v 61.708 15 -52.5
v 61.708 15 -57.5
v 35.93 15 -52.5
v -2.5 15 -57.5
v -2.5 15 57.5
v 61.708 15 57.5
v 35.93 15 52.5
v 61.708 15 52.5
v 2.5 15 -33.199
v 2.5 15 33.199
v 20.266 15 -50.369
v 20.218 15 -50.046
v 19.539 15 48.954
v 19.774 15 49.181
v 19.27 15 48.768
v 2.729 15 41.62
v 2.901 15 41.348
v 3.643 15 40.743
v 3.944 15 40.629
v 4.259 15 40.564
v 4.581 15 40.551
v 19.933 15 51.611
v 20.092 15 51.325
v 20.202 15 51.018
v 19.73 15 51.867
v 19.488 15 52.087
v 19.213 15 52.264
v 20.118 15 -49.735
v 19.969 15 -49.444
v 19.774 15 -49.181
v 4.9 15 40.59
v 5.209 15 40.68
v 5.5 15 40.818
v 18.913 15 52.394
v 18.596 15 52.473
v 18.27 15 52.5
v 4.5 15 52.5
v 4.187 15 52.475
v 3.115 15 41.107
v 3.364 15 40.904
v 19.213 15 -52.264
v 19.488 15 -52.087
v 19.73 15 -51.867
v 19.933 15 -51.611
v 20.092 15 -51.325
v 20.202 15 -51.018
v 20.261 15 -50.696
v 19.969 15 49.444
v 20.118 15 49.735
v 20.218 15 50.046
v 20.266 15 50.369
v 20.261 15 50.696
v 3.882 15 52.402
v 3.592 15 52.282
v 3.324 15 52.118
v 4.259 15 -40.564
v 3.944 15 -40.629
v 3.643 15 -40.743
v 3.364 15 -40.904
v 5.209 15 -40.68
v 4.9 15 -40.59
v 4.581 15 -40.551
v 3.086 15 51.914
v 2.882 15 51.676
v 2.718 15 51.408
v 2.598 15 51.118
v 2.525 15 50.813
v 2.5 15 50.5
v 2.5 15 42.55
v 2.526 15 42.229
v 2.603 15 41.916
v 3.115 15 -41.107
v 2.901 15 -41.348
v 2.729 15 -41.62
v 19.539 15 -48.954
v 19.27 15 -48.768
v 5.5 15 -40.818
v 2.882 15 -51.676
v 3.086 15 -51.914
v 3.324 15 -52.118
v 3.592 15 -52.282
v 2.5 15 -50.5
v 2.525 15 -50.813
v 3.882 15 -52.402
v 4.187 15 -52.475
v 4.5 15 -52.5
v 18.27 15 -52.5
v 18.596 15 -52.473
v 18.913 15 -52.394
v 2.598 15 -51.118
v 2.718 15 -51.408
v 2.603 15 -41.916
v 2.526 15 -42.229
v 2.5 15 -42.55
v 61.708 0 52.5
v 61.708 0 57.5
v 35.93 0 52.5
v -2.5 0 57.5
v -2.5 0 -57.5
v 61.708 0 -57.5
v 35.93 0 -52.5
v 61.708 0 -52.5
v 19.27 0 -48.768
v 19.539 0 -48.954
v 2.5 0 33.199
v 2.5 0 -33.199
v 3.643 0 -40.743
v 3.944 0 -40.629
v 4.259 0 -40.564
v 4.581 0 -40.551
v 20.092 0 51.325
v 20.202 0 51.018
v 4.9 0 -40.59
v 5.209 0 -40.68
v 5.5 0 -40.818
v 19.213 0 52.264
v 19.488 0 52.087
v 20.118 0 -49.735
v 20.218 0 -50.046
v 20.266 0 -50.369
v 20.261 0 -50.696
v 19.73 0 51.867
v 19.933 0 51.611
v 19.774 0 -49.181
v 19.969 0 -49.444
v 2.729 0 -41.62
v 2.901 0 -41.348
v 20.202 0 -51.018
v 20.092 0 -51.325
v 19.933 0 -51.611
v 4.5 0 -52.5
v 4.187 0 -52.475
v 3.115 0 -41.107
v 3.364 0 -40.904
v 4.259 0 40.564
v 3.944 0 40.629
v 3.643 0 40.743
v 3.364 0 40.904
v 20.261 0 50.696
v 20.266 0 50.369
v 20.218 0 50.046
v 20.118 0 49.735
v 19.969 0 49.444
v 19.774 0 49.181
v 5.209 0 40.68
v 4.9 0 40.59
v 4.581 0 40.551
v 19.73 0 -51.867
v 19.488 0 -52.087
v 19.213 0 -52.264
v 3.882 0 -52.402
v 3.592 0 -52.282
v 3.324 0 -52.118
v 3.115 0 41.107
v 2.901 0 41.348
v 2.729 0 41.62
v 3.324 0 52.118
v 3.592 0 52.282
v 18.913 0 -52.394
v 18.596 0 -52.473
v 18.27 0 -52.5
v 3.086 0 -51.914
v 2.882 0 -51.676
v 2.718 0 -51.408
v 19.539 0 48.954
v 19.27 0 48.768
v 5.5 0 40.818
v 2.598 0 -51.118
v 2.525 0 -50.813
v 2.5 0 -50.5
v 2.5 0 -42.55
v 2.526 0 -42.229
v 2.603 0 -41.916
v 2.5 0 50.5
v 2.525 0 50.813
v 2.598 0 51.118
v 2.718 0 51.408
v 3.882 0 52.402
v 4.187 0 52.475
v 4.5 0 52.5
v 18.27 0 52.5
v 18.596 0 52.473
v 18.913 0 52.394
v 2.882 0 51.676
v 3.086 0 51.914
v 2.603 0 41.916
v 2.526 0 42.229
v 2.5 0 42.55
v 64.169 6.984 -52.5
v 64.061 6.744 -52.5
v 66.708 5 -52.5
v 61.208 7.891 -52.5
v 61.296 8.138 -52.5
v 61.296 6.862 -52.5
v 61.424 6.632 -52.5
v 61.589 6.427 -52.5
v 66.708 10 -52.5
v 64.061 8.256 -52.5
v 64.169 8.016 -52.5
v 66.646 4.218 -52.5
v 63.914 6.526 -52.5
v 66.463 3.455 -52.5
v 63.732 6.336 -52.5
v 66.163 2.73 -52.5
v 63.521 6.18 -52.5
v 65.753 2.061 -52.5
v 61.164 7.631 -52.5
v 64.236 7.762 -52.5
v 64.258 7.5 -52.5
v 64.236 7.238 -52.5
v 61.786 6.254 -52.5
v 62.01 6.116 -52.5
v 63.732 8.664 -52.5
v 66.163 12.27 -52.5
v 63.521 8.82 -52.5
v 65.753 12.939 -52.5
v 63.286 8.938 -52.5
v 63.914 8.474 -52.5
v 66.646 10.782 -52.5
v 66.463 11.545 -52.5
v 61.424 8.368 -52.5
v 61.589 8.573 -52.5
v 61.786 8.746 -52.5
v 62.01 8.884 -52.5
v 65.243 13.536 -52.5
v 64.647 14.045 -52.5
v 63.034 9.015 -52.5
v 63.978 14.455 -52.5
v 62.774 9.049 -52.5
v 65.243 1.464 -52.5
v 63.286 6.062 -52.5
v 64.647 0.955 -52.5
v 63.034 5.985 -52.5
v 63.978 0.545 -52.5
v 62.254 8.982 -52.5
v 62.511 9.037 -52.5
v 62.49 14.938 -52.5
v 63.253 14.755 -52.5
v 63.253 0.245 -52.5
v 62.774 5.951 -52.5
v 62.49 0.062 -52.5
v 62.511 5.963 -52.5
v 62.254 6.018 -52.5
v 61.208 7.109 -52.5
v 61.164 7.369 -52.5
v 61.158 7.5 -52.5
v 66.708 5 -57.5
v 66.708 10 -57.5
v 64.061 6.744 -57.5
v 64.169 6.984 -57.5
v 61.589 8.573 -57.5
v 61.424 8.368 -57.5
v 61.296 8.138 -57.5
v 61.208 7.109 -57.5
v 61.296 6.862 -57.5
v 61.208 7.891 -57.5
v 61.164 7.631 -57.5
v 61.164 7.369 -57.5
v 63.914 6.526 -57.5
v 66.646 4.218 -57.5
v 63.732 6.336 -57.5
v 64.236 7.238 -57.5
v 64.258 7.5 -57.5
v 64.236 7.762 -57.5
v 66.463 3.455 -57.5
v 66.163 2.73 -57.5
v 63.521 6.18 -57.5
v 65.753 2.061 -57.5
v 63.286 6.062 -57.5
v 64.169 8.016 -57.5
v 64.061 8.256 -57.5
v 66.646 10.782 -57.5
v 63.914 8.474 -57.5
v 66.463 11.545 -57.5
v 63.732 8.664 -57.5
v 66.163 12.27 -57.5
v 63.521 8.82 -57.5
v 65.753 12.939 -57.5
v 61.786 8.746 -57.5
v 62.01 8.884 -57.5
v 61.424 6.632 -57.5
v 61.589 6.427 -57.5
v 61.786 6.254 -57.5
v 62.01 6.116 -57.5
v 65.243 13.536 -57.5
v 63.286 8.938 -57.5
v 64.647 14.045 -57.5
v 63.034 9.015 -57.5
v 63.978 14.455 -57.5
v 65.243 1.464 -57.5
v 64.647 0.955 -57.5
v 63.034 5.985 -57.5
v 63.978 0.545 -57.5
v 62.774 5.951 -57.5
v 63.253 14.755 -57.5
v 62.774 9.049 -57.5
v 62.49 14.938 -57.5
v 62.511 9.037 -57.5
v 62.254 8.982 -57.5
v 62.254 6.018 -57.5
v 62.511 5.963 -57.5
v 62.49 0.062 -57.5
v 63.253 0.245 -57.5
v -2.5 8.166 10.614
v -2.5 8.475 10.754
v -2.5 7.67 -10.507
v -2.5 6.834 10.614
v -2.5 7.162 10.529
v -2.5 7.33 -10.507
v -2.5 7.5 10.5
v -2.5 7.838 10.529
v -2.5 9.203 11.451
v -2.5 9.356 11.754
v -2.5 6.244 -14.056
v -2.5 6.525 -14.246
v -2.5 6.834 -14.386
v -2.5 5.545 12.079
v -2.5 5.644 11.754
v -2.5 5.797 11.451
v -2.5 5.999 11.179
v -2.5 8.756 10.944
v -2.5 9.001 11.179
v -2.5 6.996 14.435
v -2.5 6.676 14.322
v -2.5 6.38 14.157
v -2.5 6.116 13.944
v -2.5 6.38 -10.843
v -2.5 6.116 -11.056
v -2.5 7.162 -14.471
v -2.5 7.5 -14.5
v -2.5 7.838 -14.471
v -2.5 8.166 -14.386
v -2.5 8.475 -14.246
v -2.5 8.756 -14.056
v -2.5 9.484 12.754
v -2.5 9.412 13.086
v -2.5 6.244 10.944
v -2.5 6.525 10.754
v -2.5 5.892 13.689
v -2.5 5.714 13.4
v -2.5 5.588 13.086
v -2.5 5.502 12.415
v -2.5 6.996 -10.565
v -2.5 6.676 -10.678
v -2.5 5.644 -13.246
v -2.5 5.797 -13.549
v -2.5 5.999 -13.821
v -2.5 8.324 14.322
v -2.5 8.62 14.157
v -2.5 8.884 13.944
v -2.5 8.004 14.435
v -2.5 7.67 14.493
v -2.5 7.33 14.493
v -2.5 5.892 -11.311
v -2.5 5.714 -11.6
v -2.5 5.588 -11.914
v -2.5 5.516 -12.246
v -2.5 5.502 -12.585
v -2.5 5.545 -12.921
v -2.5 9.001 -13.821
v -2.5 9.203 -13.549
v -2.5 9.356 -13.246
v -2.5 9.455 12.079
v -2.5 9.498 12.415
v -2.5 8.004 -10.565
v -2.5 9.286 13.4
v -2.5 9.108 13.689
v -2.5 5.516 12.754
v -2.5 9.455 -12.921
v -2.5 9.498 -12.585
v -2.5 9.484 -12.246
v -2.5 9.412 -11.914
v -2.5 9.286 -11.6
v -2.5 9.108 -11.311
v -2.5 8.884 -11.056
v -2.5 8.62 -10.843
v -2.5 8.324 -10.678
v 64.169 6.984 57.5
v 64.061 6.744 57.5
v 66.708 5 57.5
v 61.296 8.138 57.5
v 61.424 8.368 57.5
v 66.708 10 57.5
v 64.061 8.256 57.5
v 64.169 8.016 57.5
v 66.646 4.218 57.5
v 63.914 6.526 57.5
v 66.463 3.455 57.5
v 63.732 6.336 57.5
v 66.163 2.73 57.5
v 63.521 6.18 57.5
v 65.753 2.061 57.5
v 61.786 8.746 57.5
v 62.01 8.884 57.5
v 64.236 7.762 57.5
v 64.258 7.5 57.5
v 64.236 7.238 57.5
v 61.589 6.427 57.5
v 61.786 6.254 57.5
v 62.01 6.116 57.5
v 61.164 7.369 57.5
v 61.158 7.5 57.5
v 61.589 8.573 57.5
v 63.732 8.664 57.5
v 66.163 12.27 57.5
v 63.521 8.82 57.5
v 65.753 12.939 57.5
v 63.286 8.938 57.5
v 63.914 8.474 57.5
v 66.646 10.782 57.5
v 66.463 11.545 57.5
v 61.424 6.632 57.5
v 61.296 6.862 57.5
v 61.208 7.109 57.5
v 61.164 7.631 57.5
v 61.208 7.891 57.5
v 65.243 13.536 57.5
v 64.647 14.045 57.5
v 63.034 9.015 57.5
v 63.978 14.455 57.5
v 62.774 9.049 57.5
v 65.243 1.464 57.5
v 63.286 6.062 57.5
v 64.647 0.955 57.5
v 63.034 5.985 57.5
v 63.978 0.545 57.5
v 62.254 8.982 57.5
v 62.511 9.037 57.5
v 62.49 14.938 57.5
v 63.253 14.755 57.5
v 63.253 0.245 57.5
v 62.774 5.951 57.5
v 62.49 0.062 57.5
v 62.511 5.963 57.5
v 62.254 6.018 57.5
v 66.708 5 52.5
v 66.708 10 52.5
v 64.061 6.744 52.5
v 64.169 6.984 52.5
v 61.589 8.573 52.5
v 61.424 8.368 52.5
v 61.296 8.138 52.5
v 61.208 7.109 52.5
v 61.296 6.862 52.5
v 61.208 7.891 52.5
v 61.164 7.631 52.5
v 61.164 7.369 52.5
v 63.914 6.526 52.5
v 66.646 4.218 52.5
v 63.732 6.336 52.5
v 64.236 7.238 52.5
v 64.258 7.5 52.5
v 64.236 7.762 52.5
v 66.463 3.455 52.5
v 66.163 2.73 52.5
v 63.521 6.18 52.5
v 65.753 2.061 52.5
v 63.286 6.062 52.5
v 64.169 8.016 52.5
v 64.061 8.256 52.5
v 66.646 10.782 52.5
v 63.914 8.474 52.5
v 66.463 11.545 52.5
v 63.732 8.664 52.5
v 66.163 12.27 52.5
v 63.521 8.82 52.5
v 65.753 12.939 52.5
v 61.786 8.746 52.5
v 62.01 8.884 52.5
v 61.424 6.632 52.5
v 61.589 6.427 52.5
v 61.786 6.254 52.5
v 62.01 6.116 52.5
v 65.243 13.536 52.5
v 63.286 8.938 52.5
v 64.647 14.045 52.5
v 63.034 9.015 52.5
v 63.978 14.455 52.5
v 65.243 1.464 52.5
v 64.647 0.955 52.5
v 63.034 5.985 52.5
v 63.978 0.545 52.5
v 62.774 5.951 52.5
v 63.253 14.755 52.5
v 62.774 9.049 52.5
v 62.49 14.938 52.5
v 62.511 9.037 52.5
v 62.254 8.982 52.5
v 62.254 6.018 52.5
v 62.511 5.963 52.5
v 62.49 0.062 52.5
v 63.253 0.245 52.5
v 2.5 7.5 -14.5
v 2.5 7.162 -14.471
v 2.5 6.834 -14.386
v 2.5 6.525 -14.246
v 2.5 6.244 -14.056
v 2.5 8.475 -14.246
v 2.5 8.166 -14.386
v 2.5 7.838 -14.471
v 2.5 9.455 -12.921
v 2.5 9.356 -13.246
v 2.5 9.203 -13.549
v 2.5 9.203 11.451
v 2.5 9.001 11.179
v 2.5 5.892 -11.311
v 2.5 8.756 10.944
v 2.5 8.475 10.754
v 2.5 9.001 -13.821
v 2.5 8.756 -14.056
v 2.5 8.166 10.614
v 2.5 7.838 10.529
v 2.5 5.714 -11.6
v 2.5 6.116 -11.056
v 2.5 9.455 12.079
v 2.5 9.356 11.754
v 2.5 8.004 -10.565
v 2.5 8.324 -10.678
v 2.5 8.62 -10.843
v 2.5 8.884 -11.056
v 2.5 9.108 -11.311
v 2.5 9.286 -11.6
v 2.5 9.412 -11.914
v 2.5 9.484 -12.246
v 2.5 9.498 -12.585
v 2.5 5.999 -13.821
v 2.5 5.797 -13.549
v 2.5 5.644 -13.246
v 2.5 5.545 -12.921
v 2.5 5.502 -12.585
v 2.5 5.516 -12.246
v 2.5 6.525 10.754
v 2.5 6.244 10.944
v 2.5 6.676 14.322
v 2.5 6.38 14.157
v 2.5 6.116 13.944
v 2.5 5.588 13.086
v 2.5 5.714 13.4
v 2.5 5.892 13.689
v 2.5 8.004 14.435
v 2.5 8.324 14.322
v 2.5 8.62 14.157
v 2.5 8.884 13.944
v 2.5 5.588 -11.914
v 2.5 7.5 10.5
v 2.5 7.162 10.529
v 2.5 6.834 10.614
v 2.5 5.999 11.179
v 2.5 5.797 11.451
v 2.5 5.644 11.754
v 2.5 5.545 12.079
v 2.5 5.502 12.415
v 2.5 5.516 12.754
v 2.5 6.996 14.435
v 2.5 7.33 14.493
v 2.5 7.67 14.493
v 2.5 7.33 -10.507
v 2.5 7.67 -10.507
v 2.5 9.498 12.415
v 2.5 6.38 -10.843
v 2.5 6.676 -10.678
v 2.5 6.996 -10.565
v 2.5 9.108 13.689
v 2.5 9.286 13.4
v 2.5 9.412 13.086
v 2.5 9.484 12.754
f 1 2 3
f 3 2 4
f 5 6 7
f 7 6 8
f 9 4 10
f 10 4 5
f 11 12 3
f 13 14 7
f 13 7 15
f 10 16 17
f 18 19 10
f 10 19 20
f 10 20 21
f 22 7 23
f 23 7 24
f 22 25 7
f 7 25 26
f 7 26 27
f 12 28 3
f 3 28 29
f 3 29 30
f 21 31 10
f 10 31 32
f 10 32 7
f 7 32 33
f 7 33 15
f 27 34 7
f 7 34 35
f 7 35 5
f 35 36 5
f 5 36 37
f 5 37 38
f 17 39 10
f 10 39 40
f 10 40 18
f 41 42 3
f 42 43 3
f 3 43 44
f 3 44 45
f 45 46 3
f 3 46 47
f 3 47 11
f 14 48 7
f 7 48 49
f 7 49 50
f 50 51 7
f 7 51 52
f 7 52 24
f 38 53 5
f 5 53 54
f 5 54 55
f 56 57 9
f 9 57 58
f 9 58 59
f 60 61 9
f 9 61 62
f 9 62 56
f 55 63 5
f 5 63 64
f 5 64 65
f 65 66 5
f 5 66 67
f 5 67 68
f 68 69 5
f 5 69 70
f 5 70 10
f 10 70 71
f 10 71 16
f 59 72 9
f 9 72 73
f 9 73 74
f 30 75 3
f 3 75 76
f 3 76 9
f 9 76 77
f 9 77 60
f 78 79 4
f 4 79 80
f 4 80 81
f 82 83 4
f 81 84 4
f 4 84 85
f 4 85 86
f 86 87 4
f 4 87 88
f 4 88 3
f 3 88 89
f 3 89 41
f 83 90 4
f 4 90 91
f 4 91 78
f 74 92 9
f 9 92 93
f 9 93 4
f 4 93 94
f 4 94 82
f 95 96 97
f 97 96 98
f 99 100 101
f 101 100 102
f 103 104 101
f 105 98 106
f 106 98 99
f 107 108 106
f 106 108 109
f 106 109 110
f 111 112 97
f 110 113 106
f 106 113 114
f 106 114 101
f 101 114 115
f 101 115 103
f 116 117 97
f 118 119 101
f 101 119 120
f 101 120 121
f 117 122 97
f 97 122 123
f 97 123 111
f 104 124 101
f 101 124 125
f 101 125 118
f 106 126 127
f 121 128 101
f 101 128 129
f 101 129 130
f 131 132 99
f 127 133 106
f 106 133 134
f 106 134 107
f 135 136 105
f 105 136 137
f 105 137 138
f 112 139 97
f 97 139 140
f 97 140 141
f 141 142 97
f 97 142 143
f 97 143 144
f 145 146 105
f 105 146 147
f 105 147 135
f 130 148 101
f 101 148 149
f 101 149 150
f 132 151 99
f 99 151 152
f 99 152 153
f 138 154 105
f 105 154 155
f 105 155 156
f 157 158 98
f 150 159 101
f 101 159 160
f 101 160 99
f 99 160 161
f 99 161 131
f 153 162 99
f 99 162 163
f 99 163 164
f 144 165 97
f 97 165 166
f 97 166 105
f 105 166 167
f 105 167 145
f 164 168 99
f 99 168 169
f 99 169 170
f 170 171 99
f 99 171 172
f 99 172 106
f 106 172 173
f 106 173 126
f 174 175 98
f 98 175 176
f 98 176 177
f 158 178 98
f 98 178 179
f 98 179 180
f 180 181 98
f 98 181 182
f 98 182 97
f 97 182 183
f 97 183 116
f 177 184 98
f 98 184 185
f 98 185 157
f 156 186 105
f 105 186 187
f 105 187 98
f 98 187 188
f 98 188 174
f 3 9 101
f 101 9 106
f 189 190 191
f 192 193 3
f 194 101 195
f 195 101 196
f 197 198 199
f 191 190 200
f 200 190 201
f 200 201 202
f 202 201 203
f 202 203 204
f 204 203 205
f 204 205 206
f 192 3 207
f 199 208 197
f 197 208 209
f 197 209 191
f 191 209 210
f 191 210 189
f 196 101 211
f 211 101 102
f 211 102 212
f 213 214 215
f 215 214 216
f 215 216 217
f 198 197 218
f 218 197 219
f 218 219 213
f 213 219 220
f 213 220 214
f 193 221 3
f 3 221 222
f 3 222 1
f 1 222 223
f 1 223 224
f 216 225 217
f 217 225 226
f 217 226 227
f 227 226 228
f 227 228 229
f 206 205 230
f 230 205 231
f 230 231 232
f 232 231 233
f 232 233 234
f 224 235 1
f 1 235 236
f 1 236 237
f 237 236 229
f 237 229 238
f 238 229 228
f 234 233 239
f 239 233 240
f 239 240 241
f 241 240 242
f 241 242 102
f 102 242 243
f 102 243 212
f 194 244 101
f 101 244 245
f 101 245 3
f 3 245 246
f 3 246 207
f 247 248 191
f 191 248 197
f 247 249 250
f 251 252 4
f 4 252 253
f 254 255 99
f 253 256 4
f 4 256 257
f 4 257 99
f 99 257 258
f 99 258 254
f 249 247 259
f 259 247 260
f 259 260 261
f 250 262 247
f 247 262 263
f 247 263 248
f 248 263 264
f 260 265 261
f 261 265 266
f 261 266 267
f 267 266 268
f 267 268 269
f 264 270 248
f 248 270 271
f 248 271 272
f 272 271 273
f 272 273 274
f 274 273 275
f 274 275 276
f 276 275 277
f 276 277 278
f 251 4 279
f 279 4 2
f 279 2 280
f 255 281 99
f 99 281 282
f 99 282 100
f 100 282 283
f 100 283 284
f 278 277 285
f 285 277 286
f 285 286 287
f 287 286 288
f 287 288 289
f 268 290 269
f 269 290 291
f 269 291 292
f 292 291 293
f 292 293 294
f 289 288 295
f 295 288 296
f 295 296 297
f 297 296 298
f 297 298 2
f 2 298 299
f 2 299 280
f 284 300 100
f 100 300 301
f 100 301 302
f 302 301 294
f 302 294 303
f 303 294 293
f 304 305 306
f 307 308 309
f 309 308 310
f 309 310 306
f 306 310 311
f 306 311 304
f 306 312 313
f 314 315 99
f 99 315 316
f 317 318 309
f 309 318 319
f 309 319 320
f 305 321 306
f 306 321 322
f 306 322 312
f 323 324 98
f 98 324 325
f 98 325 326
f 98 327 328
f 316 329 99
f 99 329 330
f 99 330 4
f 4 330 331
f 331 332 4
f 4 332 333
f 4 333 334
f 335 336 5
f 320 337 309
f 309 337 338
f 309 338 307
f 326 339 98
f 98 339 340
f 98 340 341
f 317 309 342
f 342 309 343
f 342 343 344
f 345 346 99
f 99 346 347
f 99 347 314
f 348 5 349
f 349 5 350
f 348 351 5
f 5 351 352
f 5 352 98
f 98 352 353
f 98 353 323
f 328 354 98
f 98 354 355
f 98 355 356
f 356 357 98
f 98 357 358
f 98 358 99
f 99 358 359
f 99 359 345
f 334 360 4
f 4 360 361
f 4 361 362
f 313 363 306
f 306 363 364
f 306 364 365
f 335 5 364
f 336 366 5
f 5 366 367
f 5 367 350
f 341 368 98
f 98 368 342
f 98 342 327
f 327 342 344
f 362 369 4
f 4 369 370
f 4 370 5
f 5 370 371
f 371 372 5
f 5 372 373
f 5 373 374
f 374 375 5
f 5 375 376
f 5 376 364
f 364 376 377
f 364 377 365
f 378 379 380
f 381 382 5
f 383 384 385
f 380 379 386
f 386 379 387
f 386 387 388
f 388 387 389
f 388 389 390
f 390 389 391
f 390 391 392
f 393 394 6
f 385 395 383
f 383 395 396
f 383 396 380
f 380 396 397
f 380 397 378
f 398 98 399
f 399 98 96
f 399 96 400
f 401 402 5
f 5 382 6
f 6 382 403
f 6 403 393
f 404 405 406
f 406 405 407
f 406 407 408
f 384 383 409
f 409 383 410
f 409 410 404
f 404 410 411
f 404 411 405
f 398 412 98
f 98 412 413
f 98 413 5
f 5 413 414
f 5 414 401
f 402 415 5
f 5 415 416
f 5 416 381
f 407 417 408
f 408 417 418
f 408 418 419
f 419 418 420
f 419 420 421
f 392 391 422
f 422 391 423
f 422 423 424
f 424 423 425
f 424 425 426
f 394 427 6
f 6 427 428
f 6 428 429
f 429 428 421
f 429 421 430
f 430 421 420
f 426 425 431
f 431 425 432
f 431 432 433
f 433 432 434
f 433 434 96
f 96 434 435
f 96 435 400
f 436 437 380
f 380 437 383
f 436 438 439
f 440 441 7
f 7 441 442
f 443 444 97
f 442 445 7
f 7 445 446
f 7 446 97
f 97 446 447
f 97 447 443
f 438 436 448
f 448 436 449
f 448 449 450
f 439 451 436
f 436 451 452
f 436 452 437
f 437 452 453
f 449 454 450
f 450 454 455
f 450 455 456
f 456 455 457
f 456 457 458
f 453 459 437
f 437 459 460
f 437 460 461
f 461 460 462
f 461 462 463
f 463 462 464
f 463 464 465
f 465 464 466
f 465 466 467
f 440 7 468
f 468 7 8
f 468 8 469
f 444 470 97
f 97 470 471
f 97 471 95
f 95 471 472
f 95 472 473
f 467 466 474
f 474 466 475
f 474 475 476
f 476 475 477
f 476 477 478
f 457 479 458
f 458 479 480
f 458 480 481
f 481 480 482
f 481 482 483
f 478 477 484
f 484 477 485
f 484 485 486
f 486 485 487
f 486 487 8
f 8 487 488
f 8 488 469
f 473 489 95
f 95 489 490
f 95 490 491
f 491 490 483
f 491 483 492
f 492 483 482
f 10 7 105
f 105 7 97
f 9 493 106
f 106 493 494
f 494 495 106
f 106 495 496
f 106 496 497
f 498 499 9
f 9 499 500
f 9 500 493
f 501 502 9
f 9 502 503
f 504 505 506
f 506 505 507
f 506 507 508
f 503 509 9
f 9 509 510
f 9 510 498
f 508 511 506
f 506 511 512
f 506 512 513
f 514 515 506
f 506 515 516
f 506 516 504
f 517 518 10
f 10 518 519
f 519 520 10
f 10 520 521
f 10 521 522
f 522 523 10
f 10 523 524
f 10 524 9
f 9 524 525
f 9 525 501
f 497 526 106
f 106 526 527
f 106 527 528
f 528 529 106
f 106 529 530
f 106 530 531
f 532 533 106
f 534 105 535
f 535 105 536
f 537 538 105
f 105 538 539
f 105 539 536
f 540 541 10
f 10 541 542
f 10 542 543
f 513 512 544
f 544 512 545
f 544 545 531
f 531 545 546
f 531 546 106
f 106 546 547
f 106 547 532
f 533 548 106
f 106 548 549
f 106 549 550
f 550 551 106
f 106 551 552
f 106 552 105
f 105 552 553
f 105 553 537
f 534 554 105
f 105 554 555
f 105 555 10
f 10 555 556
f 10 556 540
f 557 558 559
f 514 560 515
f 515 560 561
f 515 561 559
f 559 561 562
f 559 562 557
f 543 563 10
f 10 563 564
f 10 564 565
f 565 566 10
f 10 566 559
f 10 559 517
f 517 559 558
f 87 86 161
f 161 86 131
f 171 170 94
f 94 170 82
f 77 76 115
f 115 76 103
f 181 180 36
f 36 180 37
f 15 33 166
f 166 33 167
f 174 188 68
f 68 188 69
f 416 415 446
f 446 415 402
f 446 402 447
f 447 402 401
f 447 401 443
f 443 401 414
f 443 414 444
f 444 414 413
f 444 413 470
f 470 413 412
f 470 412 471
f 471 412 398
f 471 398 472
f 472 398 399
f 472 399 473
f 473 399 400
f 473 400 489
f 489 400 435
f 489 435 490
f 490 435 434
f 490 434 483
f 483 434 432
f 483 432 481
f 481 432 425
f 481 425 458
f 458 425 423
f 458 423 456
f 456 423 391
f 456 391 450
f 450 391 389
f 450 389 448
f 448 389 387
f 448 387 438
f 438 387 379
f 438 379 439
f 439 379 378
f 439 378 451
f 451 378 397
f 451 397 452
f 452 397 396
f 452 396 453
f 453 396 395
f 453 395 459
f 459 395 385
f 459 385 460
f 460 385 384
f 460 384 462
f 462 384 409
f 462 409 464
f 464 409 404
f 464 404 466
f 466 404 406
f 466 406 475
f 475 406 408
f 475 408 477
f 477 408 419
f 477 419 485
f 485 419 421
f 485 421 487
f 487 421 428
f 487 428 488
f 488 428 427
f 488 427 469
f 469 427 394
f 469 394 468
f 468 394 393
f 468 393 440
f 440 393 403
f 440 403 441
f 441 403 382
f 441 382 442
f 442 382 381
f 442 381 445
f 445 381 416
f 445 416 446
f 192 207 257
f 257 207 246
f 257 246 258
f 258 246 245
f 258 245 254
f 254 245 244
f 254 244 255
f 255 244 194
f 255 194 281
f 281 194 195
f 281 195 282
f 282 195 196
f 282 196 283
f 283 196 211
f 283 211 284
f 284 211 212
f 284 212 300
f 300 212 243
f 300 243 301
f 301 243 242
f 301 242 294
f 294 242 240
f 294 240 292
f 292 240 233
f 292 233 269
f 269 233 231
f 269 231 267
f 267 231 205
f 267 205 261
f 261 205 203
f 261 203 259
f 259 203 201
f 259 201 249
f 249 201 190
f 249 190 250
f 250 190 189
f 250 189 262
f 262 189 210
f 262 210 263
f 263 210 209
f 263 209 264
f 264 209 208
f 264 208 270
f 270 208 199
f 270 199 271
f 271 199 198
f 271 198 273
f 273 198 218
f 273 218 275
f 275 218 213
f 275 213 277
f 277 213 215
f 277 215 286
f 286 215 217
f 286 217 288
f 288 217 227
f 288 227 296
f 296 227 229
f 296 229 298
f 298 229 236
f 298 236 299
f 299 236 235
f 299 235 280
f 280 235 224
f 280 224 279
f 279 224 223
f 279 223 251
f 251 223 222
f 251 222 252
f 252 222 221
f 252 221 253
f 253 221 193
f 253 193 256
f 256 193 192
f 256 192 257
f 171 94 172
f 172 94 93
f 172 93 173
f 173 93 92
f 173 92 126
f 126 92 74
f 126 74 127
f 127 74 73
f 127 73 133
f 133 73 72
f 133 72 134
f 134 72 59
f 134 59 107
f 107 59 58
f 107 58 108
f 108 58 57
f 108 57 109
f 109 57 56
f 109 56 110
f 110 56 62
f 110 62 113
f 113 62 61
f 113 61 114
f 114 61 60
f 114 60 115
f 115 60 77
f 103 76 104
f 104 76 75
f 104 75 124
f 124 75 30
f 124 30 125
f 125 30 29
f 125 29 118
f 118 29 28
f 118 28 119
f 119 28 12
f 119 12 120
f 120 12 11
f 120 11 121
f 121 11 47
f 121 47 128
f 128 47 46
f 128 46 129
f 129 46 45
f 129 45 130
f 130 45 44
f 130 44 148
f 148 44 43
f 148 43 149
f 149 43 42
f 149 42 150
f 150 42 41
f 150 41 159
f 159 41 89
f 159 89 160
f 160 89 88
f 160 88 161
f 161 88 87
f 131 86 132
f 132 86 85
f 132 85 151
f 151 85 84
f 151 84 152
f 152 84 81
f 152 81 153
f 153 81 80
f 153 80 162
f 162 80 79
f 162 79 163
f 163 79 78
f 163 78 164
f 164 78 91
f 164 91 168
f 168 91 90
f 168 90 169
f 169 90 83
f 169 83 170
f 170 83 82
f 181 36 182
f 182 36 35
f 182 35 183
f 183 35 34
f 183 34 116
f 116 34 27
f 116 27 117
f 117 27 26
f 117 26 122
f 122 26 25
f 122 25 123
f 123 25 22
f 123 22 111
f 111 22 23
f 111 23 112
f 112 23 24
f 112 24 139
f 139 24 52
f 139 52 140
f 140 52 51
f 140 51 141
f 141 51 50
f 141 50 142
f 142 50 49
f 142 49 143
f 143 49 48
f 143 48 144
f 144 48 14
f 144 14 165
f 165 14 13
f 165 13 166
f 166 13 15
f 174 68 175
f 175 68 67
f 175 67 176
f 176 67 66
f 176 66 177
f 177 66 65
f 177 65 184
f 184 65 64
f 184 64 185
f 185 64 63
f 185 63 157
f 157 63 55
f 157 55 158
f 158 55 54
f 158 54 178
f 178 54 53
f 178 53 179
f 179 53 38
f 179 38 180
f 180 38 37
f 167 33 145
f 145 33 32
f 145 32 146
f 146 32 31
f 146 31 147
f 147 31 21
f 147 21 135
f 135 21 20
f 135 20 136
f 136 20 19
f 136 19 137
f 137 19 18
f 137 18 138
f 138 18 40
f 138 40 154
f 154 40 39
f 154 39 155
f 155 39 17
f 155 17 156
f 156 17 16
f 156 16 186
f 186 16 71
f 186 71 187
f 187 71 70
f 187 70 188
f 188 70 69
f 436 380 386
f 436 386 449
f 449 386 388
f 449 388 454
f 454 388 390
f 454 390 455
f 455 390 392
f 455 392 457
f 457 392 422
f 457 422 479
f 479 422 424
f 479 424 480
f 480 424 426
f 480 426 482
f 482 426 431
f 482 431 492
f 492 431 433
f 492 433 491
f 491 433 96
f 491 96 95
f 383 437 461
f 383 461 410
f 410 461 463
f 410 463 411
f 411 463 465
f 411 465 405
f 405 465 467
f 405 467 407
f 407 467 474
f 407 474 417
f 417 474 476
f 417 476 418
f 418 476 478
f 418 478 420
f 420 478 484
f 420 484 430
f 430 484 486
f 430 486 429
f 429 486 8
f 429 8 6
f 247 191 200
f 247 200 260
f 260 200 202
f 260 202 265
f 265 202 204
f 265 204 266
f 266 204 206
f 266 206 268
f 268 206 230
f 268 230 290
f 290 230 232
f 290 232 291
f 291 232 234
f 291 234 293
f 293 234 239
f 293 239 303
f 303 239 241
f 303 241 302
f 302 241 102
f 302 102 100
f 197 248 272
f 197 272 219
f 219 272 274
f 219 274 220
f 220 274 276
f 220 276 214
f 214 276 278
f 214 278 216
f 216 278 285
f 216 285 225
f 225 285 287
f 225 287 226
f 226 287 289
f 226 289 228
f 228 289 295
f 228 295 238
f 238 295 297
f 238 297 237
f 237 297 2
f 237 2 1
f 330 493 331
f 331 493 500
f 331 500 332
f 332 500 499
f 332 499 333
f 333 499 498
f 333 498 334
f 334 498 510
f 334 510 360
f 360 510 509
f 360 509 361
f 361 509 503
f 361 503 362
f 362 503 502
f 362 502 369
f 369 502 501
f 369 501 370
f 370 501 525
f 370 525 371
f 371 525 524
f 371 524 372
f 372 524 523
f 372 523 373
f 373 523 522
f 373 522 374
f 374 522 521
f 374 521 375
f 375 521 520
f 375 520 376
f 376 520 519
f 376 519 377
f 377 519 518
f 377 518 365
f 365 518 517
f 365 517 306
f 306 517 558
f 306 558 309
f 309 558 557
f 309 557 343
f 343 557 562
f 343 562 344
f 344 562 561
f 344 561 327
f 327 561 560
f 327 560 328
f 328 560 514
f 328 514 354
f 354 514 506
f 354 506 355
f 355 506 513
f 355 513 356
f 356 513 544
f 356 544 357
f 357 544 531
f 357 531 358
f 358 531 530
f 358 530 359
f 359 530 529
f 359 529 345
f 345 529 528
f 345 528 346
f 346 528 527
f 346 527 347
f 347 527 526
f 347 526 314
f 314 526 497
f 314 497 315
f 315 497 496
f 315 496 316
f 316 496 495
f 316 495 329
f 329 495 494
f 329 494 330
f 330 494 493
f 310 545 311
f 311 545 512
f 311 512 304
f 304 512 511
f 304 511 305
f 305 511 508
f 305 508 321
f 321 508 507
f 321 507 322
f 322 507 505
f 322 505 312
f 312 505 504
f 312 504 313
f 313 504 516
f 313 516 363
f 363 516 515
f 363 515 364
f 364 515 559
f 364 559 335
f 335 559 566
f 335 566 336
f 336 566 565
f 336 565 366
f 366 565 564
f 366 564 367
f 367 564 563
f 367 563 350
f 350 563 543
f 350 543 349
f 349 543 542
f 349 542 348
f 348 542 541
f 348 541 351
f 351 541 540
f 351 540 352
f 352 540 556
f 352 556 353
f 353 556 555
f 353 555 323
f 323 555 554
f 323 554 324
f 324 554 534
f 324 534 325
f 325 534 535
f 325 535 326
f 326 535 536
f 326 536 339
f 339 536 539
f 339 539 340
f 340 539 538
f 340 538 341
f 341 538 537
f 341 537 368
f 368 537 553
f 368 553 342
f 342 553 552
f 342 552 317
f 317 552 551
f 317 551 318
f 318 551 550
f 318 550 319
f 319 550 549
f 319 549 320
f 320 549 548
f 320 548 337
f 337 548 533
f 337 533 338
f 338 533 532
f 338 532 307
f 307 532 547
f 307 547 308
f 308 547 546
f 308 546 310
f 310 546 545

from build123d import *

# Parameters (mm, degrees)
BOSS_EXTRUDE1_DEPTH     = 15
SKETCH2_R               = 1.55
CUT_EXTRUDE1_DEPTH      = 1
CUT_EXTRUDE1_DEPTH_BACK = 116
FILLET1_R               = 2
FILLET2_R               = 5
SKETCH3_R               = 2
CUT_EXTRUDE2_DEPTH      = 6


with BuildPart() as part:
    # Sketch1 → Boss-Extrude1 (new body)
    with BuildSketch(Plane(origin=(0, 0, 0), x_dir=(1, 0, 0), z_dir=(0, 1, 0))):
        Polygon((61.707917854, 52.5), (66.707917854, 52.5), (66.707917854, 57.5), (62.241203502, 57.5), (34.92783027, 57.5), (-2.5, 57.5), (-2.5, 36.198924731), (-2.5, 33.198924731), (-2.5, -33.198924731), (-2.5, -36.198924731), (-2.5, -57.5), (34.92783027, -57.5), (62.241203502, -57.5), (66.707917854, -57.5), (66.707917854, -52.5), (61.707917854, -52.5), (35.930443006, -52.5), (2.5, -33.198924731), (2.5, 33.198924731), (35.930443006, 52.5), align=None)
        Polygon((2.5, 39.085676077), (25.734290584, 52.5), (2.5, 52.5), align=None, mode=Mode.SUBTRACT)
        Polygon((2.5, -52.5), (2.5, -39.085676077), (25.734290584, -52.5), align=None, mode=Mode.SUBTRACT)
    extrude(amount=BOSS_EXTRUDE1_DEPTH)

    # Sketch2 → Cut-Extrude1 (cut, two sides)
    with BuildSketch(Plane.XY.offset(57.5)) as cut_extrude1_sk:
        with Locations((62.707917854, 7.5)):
            Circle(SKETCH2_R)
    extrude(amount=CUT_EXTRUDE1_DEPTH, mode=Mode.SUBTRACT)
    extrude(cut_extrude1_sk.sketch, amount=-CUT_EXTRUDE1_DEPTH_BACK, mode=Mode.SUBTRACT)

    # Fillet1
    fillet1_edges = [part.edges().sort_by_distance(p)[0] for p in [
        (25.734290584, 7.5, -52.5),
        (2.5, 7.5, -52.5),
        (2.5, 7.5, -39.085676077),
        (2.5, 7.5, 52.5),
        (25.734290584, 7.5, 52.5),
        (2.5, 7.5, 39.085676077),
    ]]
    fillet(fillet1_edges, radius=FILLET1_R)

    # Fillet2
    fillet2_edges = [part.edges().sort_by_distance(p)[0] for p in [
        (66.707917854, 15, -55),
        (66.707917854, 0, 55),
        (66.707917854, 0, -55),
        (66.707917854, 15, 55),
    ]]
    fillet(fillet2_edges, radius=FILLET2_R)

    # Sketch3 → Cut-Extrude2 (cut, through all)
    with BuildSketch(Plane(origin=(2.5, 0, 0), x_dir=(0, 0, -1), z_dir=(1, 0, 0))):
        with Locations((-12.5, 7.5)):
            Circle(SKETCH3_R)
        with Locations((12.5, 7.5)):
            Circle(SKETCH3_R)
    extrude(amount=-CUT_EXTRUDE2_DEPTH, mode=Mode.SUBTRACT)


solid = part.part
